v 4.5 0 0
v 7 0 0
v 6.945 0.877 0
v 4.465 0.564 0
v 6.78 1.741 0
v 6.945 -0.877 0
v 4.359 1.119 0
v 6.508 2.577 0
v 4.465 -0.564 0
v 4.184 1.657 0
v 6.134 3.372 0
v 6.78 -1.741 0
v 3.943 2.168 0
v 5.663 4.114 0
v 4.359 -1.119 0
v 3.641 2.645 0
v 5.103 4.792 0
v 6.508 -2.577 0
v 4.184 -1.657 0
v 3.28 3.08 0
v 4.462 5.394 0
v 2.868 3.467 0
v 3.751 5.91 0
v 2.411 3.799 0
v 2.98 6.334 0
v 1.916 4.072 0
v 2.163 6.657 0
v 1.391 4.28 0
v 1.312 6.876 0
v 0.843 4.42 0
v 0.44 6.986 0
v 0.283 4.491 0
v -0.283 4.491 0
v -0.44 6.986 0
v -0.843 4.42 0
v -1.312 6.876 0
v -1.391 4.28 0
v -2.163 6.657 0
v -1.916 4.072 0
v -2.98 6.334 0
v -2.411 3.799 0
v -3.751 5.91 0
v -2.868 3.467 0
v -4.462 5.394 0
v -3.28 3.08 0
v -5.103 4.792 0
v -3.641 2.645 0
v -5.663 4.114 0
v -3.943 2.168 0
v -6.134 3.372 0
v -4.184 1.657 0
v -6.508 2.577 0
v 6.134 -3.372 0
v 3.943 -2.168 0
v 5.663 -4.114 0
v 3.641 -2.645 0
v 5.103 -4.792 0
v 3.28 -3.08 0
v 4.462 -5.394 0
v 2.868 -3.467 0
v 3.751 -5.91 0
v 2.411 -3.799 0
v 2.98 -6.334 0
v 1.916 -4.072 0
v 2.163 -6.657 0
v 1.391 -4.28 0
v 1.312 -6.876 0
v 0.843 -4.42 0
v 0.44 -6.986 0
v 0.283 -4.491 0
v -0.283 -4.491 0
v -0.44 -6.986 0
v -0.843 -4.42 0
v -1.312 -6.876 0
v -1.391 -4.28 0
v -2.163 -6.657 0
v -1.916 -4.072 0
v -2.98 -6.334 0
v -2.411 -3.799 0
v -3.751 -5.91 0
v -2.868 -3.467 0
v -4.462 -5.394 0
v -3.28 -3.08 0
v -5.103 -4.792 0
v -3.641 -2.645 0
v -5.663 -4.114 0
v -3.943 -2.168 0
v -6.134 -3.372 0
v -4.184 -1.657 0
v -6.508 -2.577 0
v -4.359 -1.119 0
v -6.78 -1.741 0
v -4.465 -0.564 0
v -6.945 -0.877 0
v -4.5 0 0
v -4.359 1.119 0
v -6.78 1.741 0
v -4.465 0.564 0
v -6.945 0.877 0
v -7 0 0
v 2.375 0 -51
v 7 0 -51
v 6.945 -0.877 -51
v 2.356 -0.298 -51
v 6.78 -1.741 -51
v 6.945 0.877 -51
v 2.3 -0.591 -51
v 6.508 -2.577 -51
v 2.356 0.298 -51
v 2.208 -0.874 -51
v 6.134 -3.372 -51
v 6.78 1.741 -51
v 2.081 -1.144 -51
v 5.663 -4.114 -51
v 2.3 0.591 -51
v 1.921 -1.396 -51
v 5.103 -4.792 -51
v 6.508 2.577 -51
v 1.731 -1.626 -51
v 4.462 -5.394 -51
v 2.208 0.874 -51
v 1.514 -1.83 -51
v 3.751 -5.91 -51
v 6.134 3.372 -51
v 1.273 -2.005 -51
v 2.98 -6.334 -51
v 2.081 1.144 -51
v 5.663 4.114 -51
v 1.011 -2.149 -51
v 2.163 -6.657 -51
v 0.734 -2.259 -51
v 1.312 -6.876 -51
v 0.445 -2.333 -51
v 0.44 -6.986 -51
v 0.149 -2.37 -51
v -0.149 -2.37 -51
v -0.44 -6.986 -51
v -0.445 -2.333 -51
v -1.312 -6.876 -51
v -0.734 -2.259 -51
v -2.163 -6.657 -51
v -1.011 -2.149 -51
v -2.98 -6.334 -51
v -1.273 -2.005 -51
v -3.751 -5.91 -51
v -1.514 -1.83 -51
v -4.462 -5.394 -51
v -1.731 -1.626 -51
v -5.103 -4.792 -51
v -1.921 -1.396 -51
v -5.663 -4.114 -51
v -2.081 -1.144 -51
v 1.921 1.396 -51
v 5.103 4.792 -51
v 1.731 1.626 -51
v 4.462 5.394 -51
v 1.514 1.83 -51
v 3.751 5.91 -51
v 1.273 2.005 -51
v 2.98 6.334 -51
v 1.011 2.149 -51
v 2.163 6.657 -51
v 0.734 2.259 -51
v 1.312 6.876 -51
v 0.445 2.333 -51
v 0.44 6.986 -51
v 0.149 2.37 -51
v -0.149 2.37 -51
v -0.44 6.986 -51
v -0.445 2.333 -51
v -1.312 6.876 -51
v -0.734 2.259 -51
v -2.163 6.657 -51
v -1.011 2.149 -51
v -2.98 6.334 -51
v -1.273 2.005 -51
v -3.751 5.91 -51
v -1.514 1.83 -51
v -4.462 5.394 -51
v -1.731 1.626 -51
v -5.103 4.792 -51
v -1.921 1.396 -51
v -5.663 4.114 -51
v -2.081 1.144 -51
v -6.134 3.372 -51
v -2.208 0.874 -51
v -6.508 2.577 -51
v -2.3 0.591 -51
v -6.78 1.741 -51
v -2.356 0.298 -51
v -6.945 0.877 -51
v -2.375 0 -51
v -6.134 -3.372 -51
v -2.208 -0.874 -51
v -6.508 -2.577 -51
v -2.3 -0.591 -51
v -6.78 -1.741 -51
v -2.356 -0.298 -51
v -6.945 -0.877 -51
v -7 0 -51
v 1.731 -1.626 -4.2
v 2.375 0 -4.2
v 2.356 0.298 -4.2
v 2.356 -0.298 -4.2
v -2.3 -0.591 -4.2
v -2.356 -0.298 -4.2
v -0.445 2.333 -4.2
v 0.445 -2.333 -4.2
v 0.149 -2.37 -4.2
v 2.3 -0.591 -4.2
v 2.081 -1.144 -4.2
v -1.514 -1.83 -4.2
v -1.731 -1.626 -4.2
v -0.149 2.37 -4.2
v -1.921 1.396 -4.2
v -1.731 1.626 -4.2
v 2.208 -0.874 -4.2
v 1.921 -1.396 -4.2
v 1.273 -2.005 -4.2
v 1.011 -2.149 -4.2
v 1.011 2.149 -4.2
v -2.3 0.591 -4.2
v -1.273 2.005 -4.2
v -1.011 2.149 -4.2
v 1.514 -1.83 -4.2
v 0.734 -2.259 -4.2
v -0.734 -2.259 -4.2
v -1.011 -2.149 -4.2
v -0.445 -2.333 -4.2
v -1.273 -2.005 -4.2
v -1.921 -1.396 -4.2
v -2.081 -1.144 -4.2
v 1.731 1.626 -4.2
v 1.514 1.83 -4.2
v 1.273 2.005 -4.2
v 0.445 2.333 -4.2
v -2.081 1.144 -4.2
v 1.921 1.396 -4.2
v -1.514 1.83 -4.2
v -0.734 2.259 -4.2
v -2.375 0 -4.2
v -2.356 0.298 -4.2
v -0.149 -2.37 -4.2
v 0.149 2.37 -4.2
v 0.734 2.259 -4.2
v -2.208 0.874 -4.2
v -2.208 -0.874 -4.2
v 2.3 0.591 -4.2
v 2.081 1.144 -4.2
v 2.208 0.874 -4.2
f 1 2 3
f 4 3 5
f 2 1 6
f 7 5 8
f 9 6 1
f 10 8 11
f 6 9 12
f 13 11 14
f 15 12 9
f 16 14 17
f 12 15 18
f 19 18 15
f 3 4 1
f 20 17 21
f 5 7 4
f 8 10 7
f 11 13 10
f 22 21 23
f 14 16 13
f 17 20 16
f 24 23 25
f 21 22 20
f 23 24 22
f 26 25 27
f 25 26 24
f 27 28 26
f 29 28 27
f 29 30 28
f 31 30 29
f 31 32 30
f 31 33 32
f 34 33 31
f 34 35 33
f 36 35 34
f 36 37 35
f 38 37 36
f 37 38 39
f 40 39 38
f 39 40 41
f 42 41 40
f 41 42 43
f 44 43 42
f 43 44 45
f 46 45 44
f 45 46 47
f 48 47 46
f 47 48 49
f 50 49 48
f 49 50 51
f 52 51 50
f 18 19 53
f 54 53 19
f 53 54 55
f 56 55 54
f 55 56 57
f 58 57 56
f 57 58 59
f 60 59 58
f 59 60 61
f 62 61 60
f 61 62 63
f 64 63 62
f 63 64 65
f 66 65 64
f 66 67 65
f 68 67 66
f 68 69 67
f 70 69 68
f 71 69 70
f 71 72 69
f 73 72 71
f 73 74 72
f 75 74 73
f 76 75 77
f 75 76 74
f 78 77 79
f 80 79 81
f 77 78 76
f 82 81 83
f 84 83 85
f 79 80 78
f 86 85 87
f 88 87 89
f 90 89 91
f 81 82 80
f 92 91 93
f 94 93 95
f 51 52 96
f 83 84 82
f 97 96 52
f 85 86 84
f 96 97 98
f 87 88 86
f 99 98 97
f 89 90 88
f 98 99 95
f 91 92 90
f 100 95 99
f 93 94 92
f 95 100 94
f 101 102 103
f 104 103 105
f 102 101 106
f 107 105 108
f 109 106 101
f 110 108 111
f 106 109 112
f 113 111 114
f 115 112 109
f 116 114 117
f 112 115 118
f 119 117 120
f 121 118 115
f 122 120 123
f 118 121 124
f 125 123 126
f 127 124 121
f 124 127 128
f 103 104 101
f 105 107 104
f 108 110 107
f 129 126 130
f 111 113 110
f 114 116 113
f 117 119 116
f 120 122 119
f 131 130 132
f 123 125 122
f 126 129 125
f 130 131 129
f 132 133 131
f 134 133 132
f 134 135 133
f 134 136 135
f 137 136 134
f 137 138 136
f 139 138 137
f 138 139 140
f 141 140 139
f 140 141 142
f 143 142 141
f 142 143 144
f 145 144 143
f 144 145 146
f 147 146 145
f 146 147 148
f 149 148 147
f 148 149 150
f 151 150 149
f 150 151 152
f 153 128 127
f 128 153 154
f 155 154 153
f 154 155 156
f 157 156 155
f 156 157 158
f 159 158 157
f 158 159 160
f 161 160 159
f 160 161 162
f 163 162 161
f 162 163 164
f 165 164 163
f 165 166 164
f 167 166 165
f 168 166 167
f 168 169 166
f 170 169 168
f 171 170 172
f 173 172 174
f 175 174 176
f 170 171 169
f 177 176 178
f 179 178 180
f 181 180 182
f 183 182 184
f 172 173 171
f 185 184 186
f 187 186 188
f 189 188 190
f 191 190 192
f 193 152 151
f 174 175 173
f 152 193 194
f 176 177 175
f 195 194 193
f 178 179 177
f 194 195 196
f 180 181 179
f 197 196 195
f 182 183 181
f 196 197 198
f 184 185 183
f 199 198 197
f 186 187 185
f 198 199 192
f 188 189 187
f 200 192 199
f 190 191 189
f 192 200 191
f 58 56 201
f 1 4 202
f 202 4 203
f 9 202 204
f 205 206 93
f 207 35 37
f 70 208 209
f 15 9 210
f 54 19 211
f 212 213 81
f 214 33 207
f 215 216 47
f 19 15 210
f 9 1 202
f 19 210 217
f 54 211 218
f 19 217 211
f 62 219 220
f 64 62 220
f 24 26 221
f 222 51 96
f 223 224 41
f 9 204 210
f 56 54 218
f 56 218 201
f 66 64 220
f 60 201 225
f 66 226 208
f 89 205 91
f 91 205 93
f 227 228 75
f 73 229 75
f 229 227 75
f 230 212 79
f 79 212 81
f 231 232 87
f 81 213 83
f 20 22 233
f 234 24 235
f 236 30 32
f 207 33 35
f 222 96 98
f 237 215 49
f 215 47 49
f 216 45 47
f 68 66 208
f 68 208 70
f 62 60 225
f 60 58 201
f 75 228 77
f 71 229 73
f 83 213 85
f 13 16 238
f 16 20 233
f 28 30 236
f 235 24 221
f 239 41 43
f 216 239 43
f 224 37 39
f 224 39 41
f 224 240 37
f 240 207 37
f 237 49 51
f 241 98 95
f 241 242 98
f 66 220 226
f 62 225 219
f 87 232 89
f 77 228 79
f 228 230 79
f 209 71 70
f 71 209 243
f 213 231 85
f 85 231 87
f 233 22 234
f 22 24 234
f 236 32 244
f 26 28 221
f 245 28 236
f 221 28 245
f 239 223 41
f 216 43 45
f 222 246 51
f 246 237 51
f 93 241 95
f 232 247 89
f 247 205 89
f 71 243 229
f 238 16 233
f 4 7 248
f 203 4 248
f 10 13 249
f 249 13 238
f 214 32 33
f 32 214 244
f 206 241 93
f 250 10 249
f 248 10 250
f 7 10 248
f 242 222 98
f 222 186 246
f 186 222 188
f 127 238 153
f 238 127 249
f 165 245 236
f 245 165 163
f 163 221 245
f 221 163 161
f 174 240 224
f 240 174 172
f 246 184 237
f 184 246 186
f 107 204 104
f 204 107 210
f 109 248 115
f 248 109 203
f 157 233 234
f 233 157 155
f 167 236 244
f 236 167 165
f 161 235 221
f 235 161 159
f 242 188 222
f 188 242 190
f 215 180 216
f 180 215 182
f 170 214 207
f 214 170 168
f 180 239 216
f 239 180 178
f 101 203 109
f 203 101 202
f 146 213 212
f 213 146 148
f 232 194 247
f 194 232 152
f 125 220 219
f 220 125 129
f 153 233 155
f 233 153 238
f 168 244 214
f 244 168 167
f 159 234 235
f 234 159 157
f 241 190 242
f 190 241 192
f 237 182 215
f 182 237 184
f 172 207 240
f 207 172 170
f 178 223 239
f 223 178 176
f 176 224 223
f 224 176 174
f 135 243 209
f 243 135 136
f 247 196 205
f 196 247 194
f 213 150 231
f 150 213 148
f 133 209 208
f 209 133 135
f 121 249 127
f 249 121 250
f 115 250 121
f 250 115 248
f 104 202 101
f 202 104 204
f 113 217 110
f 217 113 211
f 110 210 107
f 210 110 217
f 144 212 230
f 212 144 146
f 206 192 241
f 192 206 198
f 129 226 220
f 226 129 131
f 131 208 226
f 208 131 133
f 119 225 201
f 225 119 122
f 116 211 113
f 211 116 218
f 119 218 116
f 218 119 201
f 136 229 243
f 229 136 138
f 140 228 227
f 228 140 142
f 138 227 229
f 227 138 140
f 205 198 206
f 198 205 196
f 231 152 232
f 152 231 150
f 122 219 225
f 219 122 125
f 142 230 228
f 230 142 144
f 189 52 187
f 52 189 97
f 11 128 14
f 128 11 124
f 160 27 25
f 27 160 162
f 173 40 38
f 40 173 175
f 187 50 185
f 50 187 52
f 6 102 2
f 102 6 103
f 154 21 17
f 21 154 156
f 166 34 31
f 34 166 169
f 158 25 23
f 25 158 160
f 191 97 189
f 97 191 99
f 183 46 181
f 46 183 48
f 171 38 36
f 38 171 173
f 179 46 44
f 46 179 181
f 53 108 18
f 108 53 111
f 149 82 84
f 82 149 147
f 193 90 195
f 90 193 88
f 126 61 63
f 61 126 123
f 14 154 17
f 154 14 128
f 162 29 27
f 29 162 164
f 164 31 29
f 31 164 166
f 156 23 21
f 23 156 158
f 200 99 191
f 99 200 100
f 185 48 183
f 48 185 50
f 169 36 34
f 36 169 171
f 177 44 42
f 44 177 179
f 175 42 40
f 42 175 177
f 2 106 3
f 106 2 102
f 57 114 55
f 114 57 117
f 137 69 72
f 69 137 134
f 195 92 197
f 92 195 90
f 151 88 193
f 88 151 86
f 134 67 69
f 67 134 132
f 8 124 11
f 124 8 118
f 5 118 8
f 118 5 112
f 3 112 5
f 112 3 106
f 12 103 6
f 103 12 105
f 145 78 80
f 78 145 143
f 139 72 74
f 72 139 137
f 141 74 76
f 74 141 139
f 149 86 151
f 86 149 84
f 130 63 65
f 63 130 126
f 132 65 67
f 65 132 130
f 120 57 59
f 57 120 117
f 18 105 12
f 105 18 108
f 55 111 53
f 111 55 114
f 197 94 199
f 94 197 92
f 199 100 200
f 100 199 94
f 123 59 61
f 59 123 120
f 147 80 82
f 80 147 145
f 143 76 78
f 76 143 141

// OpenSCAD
$fn = 50;


difference() {
	union() {
		translate(v = [0, 0, -51.0000000000]) {
			cylinder(h = 51, r = 7.0000000000);
		}
		cylinder(h = 0, r = 17.0000000000);
	}
	union() {
		translate(v = [0, 0, 0]) {
			rotate(a = [0, 0, 0]) {
				difference() {
					union() {
						#translate(v = [0, 0, -51.0000000000]) {
							cylinder(h = 51, r = 2.2500000000);
						}
						#translate(v = [0, 0, -4.2000000000]) {
							cylinder(h = 4.2000000000, r1 = 2.3750000000, r2 = 4.5000000000);
						}
						#translate(v = [0, 0, -51.0000000000]) {
							cylinder(h = 51, r = 2.3750000000);
						}
						#translate(v = [0, 0, -51.0000000000]) {
							cylinder(h = 51, r = 2.2500000000);
						}
					}
					union();
				}
			}
		}
	}
}
